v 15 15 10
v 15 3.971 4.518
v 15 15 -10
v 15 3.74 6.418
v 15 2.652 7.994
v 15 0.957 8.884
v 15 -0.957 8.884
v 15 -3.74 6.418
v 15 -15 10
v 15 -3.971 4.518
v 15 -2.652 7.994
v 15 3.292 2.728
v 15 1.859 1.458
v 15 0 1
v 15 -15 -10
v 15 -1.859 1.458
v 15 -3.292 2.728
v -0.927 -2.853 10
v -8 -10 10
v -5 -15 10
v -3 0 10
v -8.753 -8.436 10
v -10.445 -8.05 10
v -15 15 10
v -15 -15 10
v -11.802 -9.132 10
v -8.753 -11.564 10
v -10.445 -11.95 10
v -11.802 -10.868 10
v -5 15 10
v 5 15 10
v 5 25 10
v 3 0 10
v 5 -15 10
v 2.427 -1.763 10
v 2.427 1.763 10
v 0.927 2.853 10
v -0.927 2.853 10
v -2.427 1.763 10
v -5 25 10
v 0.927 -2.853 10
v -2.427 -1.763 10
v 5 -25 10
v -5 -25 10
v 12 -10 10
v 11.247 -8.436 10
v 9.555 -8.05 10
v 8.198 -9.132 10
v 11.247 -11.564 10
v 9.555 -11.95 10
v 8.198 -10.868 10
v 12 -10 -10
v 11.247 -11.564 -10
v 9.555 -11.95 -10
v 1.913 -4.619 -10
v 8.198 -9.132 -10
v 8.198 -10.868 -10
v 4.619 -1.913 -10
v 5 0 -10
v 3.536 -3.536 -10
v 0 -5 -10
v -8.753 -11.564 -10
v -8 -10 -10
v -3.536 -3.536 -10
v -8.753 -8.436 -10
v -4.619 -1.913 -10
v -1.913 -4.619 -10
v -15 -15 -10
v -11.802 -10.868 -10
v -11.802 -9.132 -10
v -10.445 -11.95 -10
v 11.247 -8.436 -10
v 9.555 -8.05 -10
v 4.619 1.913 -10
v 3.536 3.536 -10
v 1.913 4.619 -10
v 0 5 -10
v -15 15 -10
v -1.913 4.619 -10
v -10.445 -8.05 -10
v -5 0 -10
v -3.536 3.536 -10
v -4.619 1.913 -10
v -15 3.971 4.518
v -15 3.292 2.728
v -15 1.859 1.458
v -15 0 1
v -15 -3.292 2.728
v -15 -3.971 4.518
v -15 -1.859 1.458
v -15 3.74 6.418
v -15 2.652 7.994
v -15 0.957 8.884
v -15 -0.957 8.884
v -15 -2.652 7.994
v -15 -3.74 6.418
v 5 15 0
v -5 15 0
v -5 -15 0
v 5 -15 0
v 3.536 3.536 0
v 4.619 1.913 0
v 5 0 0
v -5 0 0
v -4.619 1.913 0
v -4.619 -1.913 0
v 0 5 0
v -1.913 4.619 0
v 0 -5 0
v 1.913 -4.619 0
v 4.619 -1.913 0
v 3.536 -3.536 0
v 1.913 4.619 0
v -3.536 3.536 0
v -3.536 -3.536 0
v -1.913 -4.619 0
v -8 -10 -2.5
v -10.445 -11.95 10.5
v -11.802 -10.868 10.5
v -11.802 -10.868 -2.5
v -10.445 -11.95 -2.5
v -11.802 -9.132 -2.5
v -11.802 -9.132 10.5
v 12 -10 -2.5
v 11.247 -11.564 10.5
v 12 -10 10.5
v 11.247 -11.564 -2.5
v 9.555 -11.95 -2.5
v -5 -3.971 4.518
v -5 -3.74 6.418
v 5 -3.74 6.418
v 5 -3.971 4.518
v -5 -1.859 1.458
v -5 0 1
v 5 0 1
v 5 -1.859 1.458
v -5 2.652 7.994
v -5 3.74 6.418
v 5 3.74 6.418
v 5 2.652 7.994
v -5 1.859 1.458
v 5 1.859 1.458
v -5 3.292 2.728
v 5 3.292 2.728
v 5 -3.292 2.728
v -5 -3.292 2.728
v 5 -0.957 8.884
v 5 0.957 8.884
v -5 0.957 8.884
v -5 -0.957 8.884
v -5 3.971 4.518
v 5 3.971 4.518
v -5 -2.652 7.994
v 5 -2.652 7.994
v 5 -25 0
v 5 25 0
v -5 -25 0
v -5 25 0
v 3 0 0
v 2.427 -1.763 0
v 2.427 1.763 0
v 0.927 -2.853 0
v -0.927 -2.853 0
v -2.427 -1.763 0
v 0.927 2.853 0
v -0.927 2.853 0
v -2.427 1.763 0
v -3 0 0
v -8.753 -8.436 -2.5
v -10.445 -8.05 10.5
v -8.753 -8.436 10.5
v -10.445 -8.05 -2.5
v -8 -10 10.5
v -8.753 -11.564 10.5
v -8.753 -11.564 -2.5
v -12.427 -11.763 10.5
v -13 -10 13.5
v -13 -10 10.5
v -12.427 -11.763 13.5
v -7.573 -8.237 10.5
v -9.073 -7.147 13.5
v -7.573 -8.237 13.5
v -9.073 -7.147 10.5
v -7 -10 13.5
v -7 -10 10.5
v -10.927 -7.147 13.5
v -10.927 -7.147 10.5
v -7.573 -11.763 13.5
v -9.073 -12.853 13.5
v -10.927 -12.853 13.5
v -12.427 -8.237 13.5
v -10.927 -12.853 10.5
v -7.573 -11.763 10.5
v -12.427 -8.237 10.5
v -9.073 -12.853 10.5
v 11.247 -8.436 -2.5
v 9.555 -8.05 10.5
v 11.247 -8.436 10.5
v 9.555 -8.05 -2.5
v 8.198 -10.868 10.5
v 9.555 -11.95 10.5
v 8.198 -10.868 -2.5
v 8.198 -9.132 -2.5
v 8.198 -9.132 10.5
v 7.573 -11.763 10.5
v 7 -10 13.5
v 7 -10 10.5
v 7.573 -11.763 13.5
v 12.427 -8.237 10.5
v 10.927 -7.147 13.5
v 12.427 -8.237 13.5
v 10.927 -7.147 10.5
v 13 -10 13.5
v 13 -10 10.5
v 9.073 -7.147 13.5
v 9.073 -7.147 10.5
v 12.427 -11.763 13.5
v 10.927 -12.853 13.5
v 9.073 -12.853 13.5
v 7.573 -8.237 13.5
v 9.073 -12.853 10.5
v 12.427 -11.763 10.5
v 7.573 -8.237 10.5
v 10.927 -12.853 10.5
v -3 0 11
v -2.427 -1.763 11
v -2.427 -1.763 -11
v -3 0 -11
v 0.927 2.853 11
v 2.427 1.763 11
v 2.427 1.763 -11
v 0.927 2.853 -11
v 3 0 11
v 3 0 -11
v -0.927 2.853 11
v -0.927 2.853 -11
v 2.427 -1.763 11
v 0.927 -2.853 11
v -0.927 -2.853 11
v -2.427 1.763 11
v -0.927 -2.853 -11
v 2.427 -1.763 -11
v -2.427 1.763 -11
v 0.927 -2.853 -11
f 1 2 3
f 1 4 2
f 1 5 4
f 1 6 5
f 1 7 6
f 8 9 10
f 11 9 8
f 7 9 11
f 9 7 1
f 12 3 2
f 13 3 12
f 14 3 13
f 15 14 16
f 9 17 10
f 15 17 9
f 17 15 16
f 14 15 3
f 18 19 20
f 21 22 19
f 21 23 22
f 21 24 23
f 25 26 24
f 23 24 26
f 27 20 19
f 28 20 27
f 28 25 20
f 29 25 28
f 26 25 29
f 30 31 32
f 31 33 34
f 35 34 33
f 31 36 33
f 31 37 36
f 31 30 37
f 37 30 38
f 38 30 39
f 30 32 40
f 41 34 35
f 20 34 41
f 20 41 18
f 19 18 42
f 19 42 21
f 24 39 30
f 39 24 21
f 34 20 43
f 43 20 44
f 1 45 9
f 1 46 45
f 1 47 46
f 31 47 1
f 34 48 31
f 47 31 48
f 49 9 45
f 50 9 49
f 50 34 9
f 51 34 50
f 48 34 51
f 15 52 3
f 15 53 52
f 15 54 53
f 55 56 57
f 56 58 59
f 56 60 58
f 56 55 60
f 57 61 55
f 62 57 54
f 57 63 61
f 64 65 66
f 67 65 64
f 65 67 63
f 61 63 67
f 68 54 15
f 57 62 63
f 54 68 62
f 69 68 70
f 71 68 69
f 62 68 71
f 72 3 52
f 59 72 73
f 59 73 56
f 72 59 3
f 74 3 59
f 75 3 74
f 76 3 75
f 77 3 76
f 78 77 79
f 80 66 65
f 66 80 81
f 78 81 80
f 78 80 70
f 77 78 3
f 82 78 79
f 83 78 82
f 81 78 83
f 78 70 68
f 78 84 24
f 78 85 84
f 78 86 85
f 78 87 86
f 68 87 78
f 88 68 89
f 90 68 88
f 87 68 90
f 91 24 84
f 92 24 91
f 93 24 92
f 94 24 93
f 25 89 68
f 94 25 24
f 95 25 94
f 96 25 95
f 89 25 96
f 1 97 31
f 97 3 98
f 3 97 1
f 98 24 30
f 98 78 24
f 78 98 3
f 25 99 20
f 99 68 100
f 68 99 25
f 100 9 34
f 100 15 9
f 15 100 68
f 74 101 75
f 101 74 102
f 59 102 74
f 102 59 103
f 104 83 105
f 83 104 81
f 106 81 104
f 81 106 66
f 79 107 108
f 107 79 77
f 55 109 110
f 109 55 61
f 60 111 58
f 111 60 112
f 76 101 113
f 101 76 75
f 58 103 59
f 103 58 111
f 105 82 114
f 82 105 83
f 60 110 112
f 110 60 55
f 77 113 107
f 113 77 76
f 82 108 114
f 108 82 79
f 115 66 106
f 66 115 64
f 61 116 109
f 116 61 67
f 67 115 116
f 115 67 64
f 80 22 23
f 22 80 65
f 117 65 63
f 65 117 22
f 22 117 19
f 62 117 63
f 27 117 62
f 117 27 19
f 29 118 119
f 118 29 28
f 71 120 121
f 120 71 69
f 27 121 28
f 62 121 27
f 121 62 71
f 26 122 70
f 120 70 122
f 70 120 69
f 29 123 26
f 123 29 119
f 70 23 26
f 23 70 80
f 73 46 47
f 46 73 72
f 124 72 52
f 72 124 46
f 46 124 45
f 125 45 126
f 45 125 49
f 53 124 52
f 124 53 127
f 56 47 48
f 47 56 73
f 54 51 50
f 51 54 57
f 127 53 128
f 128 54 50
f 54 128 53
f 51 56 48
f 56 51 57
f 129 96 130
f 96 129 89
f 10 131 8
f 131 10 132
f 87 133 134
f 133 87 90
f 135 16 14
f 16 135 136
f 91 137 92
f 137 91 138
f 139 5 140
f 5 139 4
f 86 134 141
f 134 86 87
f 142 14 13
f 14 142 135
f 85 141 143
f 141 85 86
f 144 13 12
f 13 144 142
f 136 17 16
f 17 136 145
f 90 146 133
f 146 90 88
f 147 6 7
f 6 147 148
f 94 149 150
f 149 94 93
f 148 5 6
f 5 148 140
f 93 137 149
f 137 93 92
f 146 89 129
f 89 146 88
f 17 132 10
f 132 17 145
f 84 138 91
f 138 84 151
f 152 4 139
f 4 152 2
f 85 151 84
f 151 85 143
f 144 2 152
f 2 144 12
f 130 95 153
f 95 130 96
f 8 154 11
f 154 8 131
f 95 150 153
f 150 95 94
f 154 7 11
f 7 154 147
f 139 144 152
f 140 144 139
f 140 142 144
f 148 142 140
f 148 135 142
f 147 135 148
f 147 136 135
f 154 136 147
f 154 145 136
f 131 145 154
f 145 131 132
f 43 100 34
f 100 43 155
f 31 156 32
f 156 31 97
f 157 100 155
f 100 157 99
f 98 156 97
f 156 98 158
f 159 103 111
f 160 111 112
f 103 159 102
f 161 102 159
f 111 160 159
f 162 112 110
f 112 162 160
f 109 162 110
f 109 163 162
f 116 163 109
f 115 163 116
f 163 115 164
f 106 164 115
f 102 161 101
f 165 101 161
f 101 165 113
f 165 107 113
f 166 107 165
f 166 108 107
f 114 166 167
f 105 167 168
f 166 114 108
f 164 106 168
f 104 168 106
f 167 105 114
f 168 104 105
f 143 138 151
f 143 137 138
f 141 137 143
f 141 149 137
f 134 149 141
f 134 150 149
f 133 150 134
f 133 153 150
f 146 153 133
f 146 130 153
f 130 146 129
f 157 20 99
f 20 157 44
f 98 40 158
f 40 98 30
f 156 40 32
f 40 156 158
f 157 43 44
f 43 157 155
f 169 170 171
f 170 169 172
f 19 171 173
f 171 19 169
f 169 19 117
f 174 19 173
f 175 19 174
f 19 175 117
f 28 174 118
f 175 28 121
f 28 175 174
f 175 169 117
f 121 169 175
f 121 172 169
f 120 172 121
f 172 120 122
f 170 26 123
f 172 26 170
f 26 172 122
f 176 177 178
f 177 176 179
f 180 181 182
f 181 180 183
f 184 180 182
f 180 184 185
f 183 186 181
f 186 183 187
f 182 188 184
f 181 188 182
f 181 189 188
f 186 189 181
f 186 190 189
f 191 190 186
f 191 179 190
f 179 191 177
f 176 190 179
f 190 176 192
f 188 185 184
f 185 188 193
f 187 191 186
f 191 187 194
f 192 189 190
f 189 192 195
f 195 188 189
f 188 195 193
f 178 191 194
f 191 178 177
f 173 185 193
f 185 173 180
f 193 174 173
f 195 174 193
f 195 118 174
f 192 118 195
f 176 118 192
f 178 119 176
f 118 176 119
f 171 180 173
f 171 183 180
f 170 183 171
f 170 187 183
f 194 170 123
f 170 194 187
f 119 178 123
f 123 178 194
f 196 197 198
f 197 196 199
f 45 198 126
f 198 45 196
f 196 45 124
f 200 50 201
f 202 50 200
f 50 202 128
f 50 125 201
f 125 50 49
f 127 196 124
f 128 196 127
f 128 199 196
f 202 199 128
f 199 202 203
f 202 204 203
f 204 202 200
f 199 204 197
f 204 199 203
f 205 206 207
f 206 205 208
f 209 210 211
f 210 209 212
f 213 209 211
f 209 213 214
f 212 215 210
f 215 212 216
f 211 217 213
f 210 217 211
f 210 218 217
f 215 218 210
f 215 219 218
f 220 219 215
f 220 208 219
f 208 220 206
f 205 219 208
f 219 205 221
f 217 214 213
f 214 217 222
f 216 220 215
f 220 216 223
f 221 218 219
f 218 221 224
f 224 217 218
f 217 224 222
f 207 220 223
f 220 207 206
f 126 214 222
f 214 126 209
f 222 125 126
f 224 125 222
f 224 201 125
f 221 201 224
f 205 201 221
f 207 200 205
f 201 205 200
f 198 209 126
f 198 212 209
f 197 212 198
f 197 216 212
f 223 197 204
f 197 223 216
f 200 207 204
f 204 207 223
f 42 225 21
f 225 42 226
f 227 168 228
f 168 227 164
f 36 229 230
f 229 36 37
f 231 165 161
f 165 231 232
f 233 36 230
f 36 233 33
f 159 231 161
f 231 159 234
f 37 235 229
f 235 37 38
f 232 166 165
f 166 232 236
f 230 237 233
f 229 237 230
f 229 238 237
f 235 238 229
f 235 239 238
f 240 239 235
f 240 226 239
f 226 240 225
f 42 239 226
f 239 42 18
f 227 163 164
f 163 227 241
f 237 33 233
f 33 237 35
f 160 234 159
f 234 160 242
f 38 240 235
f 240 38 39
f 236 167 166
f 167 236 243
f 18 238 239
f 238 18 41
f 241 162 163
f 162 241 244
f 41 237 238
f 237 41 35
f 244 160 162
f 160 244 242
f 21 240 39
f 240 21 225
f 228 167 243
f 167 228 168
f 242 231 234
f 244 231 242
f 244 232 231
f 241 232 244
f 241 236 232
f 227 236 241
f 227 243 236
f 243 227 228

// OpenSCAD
// Main body of the coupling
module main_body() {
    difference() {
        cube([30, 30, 20], center = true);
        
        // Cylindrical recess for pivot pins
        translate([0, 0, 0])
            cylinder(h = 30, d = 10, center = true);
        
        // Mounting holes
        translate([-10, -10, 0])
            cylinder(h = 30, d = 4, center = true);
        translate([10, -10, 0])
            cylinder(h = 30, d = 4, center = true);
        
        // Curved slots
        translate([0, 0, 5])
            rotate([0, 90, 0])
            cylinder(h = 30, d = 8, center = true);
    }
}

// Clamping jaw
module clamping_jaw() {
    difference() {
        cube([10, 30, 10], center = true);
        
        // Cylindrical cutout for gripping
        translate([0, 0, 0])
            rotate([0, 90, 0])
            cylinder(h = 30, d = 8, center = true);
    }
}

// Pivot pin
module pivot_pin() {
    cylinder(h = 12, d = 6, center = true);
}

// Fastening bolt
module fastening_bolt() {
    union() {
        cylinder(h = 15, d = 4, center = true);
        translate([0, 0, 7])
            cylinder(h = 3, d = 6, center = true);
    }
}

// Locking screw
module locking_screw() {
    cylinder(h = 10, d = 3, center = true);
}

// Assembly
module assembly() {
    main_body();
    
    // Clamping jaws
    translate([0, 10, 5])
        clamping_jaw();
    translate([0, -10, 5])
        clamping_jaw();
    
    // Pivot pins
    translate([0, 0, 5])
        pivot_pin();
    translate([0, 0, -5])
        pivot_pin();
    
    // Fastening bolts
    translate([-10, -10, 5])
        fastening_bolt();
    translate([10, -10, 5])
        fastening_bolt();
    
    // Locking screws
    translate([-10, 10, 5])
        locking_screw();
    translate([10, 10, 5])
        locking_screw();
}

// Render the assembly
assembly();
